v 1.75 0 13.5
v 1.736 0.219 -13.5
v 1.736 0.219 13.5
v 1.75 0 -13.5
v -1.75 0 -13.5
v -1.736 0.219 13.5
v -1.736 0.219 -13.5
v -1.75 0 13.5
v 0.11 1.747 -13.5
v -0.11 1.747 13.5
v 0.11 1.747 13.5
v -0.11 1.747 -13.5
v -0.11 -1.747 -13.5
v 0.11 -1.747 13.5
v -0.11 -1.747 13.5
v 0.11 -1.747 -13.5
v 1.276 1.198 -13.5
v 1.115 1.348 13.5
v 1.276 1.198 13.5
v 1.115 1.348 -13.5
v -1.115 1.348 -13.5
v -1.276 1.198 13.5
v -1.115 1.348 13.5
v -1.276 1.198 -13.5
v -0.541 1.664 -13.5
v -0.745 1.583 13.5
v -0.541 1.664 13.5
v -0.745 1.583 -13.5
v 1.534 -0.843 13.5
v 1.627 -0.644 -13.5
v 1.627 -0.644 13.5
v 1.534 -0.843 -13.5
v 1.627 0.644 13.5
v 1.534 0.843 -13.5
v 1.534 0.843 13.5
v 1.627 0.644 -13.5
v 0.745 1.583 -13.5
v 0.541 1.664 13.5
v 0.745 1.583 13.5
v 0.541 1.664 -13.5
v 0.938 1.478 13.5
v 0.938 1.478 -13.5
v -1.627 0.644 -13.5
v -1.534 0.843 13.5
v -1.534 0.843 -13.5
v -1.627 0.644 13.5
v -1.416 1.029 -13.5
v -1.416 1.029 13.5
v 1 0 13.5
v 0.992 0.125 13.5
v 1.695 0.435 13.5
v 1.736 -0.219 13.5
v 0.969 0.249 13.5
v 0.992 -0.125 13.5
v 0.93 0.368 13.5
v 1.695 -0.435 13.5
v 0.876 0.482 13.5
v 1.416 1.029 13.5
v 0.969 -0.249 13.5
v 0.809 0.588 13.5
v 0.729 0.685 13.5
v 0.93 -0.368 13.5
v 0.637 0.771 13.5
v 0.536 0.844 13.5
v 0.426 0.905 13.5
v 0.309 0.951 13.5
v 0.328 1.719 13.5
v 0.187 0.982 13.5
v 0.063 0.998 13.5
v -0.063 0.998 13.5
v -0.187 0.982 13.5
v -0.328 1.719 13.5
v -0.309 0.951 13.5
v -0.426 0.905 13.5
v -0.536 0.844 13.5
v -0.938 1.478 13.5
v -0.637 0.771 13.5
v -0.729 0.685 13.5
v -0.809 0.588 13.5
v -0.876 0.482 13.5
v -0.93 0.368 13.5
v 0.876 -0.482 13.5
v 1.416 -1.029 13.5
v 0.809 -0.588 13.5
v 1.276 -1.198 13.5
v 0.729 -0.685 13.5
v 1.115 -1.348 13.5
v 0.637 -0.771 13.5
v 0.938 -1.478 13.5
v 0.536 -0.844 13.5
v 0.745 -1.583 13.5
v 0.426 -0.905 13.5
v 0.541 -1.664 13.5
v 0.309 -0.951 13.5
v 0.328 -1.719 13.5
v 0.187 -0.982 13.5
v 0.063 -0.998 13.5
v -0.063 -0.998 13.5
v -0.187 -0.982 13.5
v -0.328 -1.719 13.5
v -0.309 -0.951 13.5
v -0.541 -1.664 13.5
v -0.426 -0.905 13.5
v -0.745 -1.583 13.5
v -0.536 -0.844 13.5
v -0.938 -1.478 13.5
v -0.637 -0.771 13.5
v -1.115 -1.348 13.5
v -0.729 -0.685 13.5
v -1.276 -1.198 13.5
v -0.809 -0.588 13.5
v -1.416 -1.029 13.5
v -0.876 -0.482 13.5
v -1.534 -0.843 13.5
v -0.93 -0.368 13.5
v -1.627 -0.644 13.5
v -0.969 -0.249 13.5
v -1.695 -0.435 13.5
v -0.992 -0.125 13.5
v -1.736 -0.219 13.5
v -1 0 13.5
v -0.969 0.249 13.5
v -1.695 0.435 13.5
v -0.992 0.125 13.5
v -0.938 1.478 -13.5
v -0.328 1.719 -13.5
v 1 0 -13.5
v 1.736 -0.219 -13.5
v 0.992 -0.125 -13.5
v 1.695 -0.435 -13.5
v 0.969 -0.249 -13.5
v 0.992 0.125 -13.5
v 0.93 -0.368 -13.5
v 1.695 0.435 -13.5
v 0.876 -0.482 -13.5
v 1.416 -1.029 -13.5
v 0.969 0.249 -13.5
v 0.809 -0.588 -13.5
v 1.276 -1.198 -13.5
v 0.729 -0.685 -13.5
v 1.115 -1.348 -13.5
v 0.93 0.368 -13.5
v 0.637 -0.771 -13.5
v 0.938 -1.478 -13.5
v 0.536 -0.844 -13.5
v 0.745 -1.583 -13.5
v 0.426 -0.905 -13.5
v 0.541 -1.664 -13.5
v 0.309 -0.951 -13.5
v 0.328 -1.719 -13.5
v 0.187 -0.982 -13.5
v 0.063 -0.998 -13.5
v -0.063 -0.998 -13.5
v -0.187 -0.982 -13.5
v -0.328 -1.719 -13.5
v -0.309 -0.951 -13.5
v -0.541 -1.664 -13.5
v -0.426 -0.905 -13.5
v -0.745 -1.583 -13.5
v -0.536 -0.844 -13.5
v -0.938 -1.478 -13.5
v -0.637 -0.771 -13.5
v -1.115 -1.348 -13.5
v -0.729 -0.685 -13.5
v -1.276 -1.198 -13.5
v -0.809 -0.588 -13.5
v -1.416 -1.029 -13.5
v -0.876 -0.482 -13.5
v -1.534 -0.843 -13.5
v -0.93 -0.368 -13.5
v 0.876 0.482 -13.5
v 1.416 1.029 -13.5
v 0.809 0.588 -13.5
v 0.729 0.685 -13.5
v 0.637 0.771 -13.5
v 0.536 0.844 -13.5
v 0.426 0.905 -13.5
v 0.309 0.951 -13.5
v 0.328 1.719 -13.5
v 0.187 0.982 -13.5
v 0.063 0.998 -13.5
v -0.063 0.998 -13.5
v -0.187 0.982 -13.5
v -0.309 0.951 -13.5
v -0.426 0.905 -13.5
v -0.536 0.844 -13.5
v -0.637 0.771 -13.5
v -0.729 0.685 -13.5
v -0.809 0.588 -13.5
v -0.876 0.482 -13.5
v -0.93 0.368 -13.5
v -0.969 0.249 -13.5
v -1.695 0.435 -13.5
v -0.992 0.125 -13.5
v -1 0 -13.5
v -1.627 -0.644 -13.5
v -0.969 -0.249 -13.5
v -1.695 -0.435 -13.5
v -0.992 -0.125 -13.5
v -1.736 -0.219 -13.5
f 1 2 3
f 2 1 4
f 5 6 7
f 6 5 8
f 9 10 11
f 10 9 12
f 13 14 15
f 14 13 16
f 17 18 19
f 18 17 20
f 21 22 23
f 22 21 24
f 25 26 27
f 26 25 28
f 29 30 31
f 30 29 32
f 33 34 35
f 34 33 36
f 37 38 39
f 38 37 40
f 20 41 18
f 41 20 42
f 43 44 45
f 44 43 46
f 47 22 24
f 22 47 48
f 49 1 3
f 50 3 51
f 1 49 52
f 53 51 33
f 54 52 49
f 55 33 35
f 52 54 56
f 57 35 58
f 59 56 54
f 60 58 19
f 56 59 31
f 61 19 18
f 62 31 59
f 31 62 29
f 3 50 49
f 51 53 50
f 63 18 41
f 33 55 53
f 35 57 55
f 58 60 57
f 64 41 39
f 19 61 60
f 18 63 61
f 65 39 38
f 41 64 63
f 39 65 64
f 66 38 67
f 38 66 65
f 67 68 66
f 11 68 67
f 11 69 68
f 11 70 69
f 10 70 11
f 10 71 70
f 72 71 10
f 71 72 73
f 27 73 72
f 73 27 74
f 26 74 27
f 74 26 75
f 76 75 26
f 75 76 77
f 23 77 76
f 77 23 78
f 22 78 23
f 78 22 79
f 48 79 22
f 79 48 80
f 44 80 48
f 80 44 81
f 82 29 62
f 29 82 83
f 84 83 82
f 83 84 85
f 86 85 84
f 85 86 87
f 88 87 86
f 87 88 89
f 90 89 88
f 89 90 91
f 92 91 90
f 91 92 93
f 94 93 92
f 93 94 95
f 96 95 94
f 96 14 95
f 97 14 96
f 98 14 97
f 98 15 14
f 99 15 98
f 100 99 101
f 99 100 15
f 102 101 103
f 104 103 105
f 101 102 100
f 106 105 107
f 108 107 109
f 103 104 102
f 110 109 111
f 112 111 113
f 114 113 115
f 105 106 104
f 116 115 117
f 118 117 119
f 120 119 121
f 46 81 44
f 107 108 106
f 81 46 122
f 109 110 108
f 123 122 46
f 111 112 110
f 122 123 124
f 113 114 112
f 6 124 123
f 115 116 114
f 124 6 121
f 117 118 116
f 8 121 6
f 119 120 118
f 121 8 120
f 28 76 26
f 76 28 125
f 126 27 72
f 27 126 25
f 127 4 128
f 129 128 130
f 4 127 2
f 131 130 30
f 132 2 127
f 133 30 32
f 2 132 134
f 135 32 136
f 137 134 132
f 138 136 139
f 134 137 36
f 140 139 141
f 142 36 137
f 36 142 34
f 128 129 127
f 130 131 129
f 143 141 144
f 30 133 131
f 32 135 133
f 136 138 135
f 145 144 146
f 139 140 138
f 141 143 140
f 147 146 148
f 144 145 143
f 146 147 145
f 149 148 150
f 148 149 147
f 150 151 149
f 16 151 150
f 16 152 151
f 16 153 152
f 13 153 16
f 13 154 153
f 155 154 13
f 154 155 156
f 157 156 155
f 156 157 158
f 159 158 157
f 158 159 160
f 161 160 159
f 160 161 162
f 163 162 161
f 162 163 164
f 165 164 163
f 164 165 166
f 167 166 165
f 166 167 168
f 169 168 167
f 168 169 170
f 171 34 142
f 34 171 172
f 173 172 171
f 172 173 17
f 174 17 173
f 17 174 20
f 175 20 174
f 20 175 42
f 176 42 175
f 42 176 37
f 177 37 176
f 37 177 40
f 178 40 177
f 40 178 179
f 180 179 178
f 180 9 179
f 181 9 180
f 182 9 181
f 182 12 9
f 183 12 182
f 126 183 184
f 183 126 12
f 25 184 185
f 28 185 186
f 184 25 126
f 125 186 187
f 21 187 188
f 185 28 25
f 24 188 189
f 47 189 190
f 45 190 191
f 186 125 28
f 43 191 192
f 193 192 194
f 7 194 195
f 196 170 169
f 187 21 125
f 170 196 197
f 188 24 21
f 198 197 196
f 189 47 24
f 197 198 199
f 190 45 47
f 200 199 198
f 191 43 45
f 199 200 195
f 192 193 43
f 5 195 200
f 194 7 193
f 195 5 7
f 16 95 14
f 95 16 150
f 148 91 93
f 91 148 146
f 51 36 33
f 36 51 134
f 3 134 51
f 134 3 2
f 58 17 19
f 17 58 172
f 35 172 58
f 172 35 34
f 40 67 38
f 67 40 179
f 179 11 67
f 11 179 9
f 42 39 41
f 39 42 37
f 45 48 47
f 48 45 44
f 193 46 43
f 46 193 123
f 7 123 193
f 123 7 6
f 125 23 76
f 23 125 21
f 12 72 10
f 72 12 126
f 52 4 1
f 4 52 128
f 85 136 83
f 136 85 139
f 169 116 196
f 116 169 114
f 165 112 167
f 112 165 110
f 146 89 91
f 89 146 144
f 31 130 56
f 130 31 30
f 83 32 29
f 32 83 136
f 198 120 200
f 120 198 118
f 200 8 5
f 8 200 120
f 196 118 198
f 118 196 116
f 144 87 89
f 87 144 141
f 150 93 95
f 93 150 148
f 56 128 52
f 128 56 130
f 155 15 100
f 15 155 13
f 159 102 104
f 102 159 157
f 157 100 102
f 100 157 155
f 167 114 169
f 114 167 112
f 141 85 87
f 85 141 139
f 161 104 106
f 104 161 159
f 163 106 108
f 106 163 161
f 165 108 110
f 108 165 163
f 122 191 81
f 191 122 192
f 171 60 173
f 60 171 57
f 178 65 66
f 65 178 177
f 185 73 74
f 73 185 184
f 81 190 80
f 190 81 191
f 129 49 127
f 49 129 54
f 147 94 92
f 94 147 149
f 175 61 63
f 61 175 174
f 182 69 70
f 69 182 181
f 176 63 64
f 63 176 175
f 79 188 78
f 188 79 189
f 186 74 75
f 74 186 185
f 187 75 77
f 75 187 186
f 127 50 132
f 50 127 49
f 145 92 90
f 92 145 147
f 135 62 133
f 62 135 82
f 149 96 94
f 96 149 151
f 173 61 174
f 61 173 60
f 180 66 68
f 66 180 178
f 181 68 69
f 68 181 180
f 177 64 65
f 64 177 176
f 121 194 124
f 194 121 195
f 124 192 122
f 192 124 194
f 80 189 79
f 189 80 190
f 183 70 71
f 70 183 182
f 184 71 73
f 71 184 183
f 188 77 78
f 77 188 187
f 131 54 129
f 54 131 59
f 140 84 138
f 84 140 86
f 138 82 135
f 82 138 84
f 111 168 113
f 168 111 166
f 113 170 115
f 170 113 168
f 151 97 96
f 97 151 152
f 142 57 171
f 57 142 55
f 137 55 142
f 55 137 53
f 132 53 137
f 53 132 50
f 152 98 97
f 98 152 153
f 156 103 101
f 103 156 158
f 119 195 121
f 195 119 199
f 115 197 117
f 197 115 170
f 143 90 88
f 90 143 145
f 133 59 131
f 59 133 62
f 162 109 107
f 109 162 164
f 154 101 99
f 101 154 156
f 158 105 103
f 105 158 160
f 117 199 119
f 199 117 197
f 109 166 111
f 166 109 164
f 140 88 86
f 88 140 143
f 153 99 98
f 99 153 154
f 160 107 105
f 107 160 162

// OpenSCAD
$fn = 50;


difference() {
	union() {
		translate(v = [0, 0, -13.5000000000]) {
			cylinder(h = 27, r = 1.7500000000);
		}
	}
	union() {
		translate(v = [0, 0, -100.0000000000]) {
			cylinder(h = 200, r = 1.0000000000);
		}
	}
}
